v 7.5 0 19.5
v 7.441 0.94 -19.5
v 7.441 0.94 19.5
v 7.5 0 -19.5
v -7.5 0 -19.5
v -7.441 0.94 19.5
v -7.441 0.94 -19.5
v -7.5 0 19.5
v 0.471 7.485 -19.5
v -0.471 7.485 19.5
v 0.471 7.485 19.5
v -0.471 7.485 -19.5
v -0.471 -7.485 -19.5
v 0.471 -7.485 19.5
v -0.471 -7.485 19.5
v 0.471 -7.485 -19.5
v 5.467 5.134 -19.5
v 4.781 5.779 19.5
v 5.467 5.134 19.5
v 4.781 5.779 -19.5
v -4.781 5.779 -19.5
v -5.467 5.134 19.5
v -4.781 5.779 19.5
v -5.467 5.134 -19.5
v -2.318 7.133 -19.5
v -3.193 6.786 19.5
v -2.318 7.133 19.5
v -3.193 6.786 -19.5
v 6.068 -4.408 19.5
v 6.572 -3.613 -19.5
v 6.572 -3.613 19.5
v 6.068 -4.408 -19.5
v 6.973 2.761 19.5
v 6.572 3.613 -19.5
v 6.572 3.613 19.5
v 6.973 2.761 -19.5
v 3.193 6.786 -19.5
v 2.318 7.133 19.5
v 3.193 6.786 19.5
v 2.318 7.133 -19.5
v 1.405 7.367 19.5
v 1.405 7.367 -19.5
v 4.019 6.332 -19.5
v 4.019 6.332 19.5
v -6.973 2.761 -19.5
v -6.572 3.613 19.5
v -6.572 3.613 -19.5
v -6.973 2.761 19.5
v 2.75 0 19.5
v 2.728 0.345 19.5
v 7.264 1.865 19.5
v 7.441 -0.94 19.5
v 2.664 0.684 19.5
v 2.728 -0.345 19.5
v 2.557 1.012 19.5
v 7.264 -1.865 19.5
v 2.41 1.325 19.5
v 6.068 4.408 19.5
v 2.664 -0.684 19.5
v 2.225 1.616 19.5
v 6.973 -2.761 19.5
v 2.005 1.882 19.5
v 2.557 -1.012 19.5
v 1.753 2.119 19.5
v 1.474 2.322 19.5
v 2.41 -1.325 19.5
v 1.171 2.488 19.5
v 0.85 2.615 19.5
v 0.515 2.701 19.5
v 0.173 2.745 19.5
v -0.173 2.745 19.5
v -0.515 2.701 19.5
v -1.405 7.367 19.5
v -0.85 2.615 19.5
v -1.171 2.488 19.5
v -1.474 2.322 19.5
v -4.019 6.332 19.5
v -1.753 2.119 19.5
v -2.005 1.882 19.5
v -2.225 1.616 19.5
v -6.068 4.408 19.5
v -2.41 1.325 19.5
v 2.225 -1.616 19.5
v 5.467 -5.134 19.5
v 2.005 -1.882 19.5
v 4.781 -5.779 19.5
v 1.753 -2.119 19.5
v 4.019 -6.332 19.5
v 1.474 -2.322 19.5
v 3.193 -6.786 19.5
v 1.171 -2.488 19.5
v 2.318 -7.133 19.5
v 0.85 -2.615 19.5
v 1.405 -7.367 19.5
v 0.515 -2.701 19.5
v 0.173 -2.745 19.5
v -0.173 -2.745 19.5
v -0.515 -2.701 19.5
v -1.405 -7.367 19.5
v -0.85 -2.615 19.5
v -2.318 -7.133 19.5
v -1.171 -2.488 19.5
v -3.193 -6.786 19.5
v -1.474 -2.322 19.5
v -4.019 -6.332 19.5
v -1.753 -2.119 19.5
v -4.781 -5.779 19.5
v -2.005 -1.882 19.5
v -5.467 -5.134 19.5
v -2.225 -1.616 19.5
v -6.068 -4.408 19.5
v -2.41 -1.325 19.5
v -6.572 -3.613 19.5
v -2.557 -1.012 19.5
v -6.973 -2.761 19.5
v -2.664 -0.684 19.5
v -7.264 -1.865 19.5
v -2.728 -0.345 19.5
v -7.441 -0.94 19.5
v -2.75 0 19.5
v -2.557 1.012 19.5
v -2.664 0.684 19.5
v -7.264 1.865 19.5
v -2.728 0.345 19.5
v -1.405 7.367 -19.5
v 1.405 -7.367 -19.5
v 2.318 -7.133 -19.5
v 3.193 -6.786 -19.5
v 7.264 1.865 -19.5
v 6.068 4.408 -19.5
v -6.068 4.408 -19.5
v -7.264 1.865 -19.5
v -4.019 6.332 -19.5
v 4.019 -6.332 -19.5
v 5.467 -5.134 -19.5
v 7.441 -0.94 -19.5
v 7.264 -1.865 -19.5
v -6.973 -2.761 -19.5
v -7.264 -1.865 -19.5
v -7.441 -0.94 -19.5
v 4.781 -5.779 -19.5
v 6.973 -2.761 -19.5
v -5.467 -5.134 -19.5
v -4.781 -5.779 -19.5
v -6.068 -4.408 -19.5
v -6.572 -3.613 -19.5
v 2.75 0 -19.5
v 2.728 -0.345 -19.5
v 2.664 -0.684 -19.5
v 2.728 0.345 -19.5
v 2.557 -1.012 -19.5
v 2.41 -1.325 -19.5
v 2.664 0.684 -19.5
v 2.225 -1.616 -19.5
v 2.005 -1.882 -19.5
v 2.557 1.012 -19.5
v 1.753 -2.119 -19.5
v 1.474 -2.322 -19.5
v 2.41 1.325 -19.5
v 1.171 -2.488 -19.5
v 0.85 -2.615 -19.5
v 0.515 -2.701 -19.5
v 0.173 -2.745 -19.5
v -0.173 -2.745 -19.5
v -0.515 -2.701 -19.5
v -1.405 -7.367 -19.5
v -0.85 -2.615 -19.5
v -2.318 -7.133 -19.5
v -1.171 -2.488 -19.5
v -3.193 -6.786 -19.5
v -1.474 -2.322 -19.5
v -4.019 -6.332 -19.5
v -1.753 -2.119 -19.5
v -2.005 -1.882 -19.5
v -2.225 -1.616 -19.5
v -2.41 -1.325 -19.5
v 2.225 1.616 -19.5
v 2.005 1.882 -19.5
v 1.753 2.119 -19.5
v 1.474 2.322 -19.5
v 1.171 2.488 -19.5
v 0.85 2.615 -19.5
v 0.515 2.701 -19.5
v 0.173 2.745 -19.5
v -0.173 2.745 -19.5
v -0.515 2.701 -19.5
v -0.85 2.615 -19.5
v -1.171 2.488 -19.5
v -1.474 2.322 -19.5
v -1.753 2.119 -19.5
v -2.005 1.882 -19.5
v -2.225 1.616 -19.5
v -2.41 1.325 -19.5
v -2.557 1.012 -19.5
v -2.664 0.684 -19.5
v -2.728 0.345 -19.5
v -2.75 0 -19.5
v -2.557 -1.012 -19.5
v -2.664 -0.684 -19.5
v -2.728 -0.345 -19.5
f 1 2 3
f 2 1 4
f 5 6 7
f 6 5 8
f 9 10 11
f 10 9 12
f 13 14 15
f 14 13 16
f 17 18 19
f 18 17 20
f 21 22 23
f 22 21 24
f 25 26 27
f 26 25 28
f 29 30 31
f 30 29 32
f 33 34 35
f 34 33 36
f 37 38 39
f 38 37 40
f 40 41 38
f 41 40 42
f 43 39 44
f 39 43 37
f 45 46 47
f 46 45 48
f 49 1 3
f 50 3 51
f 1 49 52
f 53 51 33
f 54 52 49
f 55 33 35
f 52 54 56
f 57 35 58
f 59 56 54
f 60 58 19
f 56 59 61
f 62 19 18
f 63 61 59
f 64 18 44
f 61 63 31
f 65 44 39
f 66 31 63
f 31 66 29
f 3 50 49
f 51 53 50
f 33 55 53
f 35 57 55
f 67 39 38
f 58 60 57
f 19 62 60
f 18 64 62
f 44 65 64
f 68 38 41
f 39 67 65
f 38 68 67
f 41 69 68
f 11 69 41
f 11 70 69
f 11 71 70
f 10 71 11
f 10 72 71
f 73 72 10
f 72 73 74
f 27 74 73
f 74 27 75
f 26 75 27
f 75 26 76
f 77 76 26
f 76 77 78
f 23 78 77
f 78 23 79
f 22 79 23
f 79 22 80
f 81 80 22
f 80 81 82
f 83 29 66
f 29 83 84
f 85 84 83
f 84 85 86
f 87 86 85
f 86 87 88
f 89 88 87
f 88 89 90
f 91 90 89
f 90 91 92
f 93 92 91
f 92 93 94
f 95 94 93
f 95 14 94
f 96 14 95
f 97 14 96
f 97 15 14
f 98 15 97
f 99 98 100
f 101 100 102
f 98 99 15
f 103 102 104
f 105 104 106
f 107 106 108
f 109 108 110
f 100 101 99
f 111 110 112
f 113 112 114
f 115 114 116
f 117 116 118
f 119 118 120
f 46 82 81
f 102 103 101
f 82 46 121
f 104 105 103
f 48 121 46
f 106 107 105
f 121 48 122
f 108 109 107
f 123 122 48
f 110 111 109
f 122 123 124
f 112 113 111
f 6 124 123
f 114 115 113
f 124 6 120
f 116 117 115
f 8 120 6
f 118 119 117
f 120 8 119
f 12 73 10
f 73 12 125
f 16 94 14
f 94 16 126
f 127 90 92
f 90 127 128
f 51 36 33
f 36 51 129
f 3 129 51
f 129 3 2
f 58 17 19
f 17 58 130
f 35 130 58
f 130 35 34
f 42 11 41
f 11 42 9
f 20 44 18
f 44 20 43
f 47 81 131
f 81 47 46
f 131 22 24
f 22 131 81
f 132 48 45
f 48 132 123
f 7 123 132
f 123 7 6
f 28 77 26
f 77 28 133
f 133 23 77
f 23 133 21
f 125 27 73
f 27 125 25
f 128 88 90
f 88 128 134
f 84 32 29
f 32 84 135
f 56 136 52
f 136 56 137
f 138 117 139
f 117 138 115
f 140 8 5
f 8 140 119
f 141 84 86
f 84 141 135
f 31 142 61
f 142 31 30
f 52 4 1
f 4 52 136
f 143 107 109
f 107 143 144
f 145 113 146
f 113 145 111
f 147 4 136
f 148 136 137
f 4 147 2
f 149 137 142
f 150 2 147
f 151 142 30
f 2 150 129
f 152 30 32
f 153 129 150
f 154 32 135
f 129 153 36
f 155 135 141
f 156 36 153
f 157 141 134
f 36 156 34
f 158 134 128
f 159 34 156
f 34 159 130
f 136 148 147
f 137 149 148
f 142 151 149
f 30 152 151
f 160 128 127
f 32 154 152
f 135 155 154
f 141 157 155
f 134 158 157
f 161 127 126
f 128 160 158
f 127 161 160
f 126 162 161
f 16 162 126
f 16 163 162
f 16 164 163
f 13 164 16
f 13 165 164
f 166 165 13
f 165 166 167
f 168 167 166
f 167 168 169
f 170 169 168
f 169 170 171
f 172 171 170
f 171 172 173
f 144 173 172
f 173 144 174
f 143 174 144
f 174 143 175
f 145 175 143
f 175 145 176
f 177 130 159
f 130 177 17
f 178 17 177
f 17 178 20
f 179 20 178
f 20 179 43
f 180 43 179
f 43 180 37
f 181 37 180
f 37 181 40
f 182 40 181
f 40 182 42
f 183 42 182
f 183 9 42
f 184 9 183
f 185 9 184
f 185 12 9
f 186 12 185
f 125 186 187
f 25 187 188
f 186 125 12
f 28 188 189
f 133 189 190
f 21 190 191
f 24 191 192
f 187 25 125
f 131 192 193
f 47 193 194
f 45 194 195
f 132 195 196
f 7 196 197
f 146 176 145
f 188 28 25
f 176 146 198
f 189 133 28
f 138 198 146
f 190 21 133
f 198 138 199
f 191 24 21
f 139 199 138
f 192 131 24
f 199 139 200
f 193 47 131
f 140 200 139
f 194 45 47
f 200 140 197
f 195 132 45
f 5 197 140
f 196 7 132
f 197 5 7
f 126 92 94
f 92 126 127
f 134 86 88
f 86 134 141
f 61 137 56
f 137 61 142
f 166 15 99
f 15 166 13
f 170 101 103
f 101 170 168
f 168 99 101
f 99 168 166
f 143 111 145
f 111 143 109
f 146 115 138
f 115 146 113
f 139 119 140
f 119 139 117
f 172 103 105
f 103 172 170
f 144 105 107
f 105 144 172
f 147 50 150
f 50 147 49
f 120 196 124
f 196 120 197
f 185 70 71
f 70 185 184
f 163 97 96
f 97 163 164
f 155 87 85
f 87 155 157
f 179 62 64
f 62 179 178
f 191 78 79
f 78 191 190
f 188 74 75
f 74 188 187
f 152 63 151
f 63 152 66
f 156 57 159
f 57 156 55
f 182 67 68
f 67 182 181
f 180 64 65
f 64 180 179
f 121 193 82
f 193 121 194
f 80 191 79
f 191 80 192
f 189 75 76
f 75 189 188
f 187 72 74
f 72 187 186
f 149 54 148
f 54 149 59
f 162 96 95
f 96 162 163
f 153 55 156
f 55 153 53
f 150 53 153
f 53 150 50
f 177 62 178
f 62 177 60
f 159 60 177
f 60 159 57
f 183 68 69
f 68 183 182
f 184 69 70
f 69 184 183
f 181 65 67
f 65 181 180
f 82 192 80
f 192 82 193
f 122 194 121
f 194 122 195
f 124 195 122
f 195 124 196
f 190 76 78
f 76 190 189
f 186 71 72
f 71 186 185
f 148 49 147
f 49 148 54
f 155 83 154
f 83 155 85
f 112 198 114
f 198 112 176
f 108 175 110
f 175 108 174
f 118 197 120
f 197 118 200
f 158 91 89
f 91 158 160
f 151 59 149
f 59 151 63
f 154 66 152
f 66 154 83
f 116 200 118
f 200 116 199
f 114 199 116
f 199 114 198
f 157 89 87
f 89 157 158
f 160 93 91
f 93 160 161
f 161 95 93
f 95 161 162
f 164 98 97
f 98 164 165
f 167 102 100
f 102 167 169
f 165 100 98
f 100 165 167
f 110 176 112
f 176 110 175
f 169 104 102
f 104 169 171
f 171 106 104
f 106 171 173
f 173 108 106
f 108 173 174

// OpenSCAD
$fn = 50;


difference() {
	union() {
		translate(v = [0, 0, -19.5000000000]) {
			cylinder(h = 39, r = 7.5000000000);
		}
	}
	union() {
		translate(v = [0, 0, -100.0000000000]) {
			cylinder(h = 200, r = 2.7500000000);
		}
	}
}
